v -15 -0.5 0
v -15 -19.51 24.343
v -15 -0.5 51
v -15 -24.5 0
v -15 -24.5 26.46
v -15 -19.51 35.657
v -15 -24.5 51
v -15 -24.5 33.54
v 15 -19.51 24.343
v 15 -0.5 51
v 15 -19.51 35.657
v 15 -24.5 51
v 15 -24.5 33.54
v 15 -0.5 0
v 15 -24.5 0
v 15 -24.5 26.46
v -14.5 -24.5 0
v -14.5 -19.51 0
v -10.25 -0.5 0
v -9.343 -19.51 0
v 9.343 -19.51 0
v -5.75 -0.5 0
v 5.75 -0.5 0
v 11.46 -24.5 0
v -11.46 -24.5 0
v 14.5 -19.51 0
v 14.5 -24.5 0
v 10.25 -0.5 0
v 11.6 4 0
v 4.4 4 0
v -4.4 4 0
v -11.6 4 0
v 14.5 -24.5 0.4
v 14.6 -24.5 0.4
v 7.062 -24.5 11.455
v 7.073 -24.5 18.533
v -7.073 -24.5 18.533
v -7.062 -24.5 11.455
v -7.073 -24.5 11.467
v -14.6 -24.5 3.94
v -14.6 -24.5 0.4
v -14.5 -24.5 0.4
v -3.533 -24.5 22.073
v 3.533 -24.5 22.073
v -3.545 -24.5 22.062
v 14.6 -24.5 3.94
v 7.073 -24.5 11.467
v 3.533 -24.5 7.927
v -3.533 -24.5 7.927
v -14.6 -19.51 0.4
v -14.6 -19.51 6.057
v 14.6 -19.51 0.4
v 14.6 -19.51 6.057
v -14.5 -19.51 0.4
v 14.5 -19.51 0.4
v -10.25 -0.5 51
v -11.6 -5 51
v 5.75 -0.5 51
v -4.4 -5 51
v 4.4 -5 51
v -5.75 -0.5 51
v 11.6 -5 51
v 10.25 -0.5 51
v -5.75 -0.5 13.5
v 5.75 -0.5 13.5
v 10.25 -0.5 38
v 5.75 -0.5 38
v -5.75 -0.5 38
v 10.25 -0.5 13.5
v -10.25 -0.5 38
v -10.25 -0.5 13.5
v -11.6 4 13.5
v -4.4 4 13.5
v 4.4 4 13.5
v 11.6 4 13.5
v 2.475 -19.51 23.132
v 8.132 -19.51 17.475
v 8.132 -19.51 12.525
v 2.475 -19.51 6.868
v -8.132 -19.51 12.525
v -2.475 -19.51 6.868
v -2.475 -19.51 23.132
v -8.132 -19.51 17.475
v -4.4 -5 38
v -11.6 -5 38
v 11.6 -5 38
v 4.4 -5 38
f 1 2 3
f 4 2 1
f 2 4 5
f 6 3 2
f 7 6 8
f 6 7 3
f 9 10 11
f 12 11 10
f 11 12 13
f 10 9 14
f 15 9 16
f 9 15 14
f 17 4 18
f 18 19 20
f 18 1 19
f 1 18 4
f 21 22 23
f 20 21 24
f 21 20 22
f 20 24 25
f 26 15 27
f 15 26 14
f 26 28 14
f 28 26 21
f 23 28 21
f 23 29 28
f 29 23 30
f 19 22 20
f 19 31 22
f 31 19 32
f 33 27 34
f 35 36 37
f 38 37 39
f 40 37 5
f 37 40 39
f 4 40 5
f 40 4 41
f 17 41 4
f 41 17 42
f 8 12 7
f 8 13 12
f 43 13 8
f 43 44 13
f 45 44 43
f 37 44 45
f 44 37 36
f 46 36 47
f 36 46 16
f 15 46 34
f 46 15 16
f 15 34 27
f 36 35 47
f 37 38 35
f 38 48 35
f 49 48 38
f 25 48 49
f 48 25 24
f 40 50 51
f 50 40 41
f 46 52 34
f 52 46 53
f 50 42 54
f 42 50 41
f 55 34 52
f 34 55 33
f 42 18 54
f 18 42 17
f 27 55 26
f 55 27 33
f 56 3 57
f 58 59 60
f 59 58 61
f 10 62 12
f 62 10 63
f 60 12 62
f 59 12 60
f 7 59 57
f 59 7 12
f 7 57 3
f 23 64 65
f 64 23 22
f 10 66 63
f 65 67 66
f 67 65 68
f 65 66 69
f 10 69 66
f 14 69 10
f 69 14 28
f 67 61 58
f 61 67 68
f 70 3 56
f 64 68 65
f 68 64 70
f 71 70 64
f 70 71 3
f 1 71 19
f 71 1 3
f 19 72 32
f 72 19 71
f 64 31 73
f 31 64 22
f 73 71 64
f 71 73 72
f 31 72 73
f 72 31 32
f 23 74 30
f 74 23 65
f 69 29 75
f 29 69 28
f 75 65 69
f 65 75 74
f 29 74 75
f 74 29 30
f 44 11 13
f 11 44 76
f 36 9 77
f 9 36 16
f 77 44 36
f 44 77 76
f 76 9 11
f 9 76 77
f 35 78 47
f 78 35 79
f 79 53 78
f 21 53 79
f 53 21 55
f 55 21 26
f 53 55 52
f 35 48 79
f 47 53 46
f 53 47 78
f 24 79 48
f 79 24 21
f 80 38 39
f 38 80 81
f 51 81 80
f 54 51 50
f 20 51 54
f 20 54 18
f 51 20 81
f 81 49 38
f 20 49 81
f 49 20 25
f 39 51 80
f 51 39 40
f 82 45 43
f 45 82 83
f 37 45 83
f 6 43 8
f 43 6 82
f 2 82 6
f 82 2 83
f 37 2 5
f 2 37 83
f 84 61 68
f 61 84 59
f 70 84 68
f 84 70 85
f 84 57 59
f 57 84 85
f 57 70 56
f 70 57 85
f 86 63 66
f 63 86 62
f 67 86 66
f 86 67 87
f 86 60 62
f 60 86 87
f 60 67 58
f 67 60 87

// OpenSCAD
// file: include.scad
//////////////////      END SECTION       //////////////////

	module added_pins(){
		difference(){
			union(){
				translate([30/(15/4),obj_leg*leg_length,30/(15/4)]) pin();
				translate([30/(15/4)+14.5,obj_leg*leg_length,30/(15/4)+14]) pin();
			}
			union(){
							translate([30/(15/4)+13.5,obj_leg*leg_length-20,30/(15/4)+5])cube(size=[2,40,15]);
							translate([30/(15/4)+7.5,obj_leg*leg_length-20,30/(15/4)+15])rotate([0,90,0]) cube(size=[2,40,15]);	

							translate([30/(15/4)-1,obj_leg*leg_length-20,30/(15/4)-8])cube(size=[2,40,15]);
							translate([30/(15/4)-10,obj_leg*leg_length-20,30/(15/4)+1])rotate([0,90,0]) cube(size=[2,40,15]);
			}
		}
	}
	module taken_pins() {
		translate([30/(15/4)+14,obj_leg*leg_length-10,30/(15/4)]) mirror_pin();
		translate([30/(15/4),obj_leg*leg_length-10,30/(15/4)+15]) mirror_pin();
	}


//////////////////      OTHER STUFF       //////////////////

	module holes() {
		rotate([0,0,90]) for(y=[0:other_holes])
		translate([obj_leg+y*15,-15.5,7.5]) union() {
			translate([7.5,0,15]) hole_up();
			hole_down();
		}
	}
	module extend_holes() {
	module top(){
		rotate([0,0,90]) for(y=[0:other_holes+1])
		translate([(30/4)+y*15,-15.5,7.5]) union() {
			translate([7.5,0,15]) hole_up();
		}
	}
	module bottom(){
		rotate([0,0,90]) for(y=[0:other_holes+2])
		translate([(30/4)+y*15,-15.5,7.5]) union() {
			hole_down();
		
}
	}
	union(){
		top();
		bottom();
	}
	}

	module hole() {
		union() {
			rotate([90, 90, 0]) cylinder(h=40, d=hole_pin_diameter, center=true);
			translate([0,7.5,0]) sphere(d=hole_ball_size);
			translate([0,-6,0]) sphere(d=hole_ball_size);
		}
	}
	module hole_up() {
		union() {
			rotate([90, 90, 0]) cylinder(h=40, d=hole_pin_diameter, center=true);
			translate([0,7.5,10]) cylinder(h=hole_pin_height, d=hole_pin_diameter, center=true);
			translate([0,-6,10]) cylinder(h=hole_pin_height, d=hole_pin_diameter, center=true);
			translate([0,7.5,0]) sphere(d=hole_ball_size);
			translate([0,-6,0]) sphere(d=hole_ball_size);
		}
	}
	module hole_down() {
		union() {
			rotate([90, 90, 0]) cylinder(h=40, d=hole_pin_diameter, center=true);
			translate([0,7.5,-10]) cylinder(h=hole_pin_height, d=hole_pin_diameter, center=true);
			translate([0,-6,-10]) cylinder(h=hole_pin_height, d=hole_pin_diameter, center=true);
			translate([0,7.5,0]) sphere(d=hole_ball_size);
			translate([0,-6,0]) sphere(d=hole_ball_size);
		}
	}
	module pin() {
		union() {
			rotate([90, 90, 0]) cylinder(h=pin_height, d=pin_diameter, center=true);
			translate([0,7.5,0]) sphere(d=ball_size);
		}
	}

	module mirror_pin() {
		rotate([90, 90, 0]) cylinder(h=hole_pin_height+small_number, d=hole_pin_diameter, center=true);
		translate([0,-(pin_height-(ball_size/2)),0]) sphere(d=ball_size);
	}


//////////////////      SOME RACK AND Z THINGS       //////////////////

module z_holes() {
    rotate([0,-90,0]) for(z=[0:z_hole_number])
    translate([22.5+z*15,16,-12])
        hole();
}

module pin_cuts() {
	union(){
		cube(size=[2,10,40], center=true);
		rotate([0,0,90]) cube(size=[2,10,40], center=true);
	}
}
module pin_uncut() {
	union(){
		rotate([0, 0, 90]) cylinder(h=hole_pin_height, d=hole_pin_diameter, center=true);
		translate([0,0,10]) sphere(d=ball_hole);
	}
}


module pin_out() {
	union(){
		rotate([0, 0, 90]) cylinder(h=pin_height, d=pin_diameter, center=true);
		translate([0,0,10]) sphere(d= ball_size);
	}
}


module pins_z(){
	difference() {
		pin_out();
		pin_cuts();
	}
}
//////////////////      RACK AND SLIDE     ///////////////////

module straight_pins() {
	for(z=[0:((((obj_leg*leg_length)*2)-(obj_leg*2))/3)/14.5]) rotate([-90,0,0]) translate([z*15,30/(15/4),14]) pins_z();
	for(z=[0:((((obj_leg*leg_length)*2)-(obj_leg*2))/3)/14.5]) rotate([-90,0,0]) translate([z*15,30/(15/4)-14,14]) pins_z();
}
module stagger_pins() {
	for(z=[0:((((obj_leg*leg_length)*2)-(obj_leg*2))/3)/14.5]) rotate([-90,0,0]) translate([z*15,30/(15/4),14]) pins_z();
	for(z=[0:((((obj_leg*leg_length)*2)-(obj_leg*2))/3)/14.5]) rotate([-90,0,0]) translate([z*15+7,30/(15/4)-14,14]) pins_z();
}


//////////////////      DOVE TAIL       //////////////////

module male_dovetail(height) {
	dovetail_3d(max_width,min_width,depth,height);
}

module dovetail_3d(max_width=11, min_width=5, depth=5, height=30) {
	linear_extrude(height=height, convexity=2)
		dovetail_2d(max_width,min_width,depth);
}

module dovetail_2d(max_width=11, min_width=5, depth=5) {
	angle=atan((max_width/2-min_width/2)/depth);
	echo("angle: ", angle);
	polygon(paths=[[0,1,2,3,0]], points=[[-min_width/2,0], [-max_width/2,depth], [max_width/2, depth], [min_width/2,0]]);
}

//bow tie
	module tie_end(height){
				rotate([0,0,0]) translate([0,-0.01,((obj_leg/2)/2)]) male_dovetail(height);
				rotate([0,90,0]) translate([0,-0.01,((obj_leg/2)/2)]) male_dovetail(height);
				rotate([0,180,0]) translate([0,-0.01,((obj_leg/2)/2)]) male_dovetail(height);
				rotate([0,-90,0]) translate([0,-0.01,((obj_leg/2)/2)]) male_dovetail(height);
	}

module bow_support(){
	difference(){
		intersection(){
			translate([-15,0,-15]) cube([30,9,30]);
			scale([1.05,1.05,1.05]) rotate([0,45,0]) tie_end();
		}
		cube([29.2,29.2,29.2], center=true);
	}
}

	module wrap(){
		depth = 30;
				translate([-15,30,15]) rotate([90,180,90]) male_dovetail(height=depth);
				rotate([0,90,0]) translate([-15,30,15]) rotate([90,180,90]) male_dovetail(height=depth);
				rotate([0,180,0]) translate([-15,30,15]) rotate([90,180,90]) male_dovetail(height=depth);
				rotate([0,-90,0]) translate([-15,30,15]) rotate([90,180,90]) male_dovetail(height=depth);
	}
// file: globals.scad
/*
Most things in this file is represented as one millimeter, so keep that in mind while changing things.
Some of the setting are not mm but at variables that you can set, such as 2*x=2x and you are setting what x is.
I will try to specify when things are variables and not exact measurements.
*/

obj_leg = 30;
leg_length = 5.5;
small_number = 0.001;
metal_core_rode_global = 5;


///////////////// number of holes /////////////////////
z_hole_number = 8;
other_holes = 8;

///////////////// Pins /////////////////////

//pins that poke out
ball_size = 10;
pin_height = 20;
pin_diameter = 6;


//holes
hole_ball_size = ball_size;
hole_pin_height = pin_height;
hole_pin_diameter = pin_diameter;

///////////////// Z THINGS /////////////////////

berring_slot_width = 7.5;
berring_slot_depth = 6.5;
metal_core_rode = 5;

///////////////// X THINGS /////////////////////

//male dove tails
max_width=8;
min_width=5;
depth=5;
height=obj_leg/2;

//female dove tails, this is found on the y mounts
girl_max_width=11;
girl_min_width=5;
girl_depth=5;
girl_height=obj_leg;


///////////////// Y THINGS /////////////////////
/*
The Y is so normal that all of those global variables at the top should change all of the setting in it, this section is set her incase there are variables set in the future development of this project.
*/
// main file
include <globals.scad>;
include <include.scad>;

tail_depth = 55;
tail_depth_2 = -10;
thickness = 24;
module y_mount_added(){
	translate([0,-15+6-3.5,51/2]) cube([30,thickness,51], center=true);
    
    translate([-8,-12.5+thickness/2,-55+tail_depth]) scale([.9,.9,.9]) male_dovetail(height=15);
	translate([8,-12.5+thickness/2,-55+tail_depth]) scale([.9,.9,.9]) male_dovetail(height=15);
    

}

module y_mount_taken(){
	translate([0,-thickness/2-12.5,15]) rotate([0,45,0]) tie_end();
    
	rotate([180,0,0]) translate([-8,12.5-thickness/2,-55+tail_depth_2]) scale([.9,.9,.9]) male_dovetail(height=30);
	rotate([180,0,0]) translate([8,12.5-thickness/2,-55+tail_depth_2]) scale([.9,.9,.9]) male_dovetail(height=30);

}
difference(){
	translate([0,-thickness/2-12.5,15]) bow_support();
	translate([0,-thickness/2-12.5,25]) cube([50,10,20], center=true);
	translate([0,-thickness/2-12.5,0]) cube([29,10,20], center=true);
}

difference(){
	y_mount_added();
	y_mount_taken();
}
